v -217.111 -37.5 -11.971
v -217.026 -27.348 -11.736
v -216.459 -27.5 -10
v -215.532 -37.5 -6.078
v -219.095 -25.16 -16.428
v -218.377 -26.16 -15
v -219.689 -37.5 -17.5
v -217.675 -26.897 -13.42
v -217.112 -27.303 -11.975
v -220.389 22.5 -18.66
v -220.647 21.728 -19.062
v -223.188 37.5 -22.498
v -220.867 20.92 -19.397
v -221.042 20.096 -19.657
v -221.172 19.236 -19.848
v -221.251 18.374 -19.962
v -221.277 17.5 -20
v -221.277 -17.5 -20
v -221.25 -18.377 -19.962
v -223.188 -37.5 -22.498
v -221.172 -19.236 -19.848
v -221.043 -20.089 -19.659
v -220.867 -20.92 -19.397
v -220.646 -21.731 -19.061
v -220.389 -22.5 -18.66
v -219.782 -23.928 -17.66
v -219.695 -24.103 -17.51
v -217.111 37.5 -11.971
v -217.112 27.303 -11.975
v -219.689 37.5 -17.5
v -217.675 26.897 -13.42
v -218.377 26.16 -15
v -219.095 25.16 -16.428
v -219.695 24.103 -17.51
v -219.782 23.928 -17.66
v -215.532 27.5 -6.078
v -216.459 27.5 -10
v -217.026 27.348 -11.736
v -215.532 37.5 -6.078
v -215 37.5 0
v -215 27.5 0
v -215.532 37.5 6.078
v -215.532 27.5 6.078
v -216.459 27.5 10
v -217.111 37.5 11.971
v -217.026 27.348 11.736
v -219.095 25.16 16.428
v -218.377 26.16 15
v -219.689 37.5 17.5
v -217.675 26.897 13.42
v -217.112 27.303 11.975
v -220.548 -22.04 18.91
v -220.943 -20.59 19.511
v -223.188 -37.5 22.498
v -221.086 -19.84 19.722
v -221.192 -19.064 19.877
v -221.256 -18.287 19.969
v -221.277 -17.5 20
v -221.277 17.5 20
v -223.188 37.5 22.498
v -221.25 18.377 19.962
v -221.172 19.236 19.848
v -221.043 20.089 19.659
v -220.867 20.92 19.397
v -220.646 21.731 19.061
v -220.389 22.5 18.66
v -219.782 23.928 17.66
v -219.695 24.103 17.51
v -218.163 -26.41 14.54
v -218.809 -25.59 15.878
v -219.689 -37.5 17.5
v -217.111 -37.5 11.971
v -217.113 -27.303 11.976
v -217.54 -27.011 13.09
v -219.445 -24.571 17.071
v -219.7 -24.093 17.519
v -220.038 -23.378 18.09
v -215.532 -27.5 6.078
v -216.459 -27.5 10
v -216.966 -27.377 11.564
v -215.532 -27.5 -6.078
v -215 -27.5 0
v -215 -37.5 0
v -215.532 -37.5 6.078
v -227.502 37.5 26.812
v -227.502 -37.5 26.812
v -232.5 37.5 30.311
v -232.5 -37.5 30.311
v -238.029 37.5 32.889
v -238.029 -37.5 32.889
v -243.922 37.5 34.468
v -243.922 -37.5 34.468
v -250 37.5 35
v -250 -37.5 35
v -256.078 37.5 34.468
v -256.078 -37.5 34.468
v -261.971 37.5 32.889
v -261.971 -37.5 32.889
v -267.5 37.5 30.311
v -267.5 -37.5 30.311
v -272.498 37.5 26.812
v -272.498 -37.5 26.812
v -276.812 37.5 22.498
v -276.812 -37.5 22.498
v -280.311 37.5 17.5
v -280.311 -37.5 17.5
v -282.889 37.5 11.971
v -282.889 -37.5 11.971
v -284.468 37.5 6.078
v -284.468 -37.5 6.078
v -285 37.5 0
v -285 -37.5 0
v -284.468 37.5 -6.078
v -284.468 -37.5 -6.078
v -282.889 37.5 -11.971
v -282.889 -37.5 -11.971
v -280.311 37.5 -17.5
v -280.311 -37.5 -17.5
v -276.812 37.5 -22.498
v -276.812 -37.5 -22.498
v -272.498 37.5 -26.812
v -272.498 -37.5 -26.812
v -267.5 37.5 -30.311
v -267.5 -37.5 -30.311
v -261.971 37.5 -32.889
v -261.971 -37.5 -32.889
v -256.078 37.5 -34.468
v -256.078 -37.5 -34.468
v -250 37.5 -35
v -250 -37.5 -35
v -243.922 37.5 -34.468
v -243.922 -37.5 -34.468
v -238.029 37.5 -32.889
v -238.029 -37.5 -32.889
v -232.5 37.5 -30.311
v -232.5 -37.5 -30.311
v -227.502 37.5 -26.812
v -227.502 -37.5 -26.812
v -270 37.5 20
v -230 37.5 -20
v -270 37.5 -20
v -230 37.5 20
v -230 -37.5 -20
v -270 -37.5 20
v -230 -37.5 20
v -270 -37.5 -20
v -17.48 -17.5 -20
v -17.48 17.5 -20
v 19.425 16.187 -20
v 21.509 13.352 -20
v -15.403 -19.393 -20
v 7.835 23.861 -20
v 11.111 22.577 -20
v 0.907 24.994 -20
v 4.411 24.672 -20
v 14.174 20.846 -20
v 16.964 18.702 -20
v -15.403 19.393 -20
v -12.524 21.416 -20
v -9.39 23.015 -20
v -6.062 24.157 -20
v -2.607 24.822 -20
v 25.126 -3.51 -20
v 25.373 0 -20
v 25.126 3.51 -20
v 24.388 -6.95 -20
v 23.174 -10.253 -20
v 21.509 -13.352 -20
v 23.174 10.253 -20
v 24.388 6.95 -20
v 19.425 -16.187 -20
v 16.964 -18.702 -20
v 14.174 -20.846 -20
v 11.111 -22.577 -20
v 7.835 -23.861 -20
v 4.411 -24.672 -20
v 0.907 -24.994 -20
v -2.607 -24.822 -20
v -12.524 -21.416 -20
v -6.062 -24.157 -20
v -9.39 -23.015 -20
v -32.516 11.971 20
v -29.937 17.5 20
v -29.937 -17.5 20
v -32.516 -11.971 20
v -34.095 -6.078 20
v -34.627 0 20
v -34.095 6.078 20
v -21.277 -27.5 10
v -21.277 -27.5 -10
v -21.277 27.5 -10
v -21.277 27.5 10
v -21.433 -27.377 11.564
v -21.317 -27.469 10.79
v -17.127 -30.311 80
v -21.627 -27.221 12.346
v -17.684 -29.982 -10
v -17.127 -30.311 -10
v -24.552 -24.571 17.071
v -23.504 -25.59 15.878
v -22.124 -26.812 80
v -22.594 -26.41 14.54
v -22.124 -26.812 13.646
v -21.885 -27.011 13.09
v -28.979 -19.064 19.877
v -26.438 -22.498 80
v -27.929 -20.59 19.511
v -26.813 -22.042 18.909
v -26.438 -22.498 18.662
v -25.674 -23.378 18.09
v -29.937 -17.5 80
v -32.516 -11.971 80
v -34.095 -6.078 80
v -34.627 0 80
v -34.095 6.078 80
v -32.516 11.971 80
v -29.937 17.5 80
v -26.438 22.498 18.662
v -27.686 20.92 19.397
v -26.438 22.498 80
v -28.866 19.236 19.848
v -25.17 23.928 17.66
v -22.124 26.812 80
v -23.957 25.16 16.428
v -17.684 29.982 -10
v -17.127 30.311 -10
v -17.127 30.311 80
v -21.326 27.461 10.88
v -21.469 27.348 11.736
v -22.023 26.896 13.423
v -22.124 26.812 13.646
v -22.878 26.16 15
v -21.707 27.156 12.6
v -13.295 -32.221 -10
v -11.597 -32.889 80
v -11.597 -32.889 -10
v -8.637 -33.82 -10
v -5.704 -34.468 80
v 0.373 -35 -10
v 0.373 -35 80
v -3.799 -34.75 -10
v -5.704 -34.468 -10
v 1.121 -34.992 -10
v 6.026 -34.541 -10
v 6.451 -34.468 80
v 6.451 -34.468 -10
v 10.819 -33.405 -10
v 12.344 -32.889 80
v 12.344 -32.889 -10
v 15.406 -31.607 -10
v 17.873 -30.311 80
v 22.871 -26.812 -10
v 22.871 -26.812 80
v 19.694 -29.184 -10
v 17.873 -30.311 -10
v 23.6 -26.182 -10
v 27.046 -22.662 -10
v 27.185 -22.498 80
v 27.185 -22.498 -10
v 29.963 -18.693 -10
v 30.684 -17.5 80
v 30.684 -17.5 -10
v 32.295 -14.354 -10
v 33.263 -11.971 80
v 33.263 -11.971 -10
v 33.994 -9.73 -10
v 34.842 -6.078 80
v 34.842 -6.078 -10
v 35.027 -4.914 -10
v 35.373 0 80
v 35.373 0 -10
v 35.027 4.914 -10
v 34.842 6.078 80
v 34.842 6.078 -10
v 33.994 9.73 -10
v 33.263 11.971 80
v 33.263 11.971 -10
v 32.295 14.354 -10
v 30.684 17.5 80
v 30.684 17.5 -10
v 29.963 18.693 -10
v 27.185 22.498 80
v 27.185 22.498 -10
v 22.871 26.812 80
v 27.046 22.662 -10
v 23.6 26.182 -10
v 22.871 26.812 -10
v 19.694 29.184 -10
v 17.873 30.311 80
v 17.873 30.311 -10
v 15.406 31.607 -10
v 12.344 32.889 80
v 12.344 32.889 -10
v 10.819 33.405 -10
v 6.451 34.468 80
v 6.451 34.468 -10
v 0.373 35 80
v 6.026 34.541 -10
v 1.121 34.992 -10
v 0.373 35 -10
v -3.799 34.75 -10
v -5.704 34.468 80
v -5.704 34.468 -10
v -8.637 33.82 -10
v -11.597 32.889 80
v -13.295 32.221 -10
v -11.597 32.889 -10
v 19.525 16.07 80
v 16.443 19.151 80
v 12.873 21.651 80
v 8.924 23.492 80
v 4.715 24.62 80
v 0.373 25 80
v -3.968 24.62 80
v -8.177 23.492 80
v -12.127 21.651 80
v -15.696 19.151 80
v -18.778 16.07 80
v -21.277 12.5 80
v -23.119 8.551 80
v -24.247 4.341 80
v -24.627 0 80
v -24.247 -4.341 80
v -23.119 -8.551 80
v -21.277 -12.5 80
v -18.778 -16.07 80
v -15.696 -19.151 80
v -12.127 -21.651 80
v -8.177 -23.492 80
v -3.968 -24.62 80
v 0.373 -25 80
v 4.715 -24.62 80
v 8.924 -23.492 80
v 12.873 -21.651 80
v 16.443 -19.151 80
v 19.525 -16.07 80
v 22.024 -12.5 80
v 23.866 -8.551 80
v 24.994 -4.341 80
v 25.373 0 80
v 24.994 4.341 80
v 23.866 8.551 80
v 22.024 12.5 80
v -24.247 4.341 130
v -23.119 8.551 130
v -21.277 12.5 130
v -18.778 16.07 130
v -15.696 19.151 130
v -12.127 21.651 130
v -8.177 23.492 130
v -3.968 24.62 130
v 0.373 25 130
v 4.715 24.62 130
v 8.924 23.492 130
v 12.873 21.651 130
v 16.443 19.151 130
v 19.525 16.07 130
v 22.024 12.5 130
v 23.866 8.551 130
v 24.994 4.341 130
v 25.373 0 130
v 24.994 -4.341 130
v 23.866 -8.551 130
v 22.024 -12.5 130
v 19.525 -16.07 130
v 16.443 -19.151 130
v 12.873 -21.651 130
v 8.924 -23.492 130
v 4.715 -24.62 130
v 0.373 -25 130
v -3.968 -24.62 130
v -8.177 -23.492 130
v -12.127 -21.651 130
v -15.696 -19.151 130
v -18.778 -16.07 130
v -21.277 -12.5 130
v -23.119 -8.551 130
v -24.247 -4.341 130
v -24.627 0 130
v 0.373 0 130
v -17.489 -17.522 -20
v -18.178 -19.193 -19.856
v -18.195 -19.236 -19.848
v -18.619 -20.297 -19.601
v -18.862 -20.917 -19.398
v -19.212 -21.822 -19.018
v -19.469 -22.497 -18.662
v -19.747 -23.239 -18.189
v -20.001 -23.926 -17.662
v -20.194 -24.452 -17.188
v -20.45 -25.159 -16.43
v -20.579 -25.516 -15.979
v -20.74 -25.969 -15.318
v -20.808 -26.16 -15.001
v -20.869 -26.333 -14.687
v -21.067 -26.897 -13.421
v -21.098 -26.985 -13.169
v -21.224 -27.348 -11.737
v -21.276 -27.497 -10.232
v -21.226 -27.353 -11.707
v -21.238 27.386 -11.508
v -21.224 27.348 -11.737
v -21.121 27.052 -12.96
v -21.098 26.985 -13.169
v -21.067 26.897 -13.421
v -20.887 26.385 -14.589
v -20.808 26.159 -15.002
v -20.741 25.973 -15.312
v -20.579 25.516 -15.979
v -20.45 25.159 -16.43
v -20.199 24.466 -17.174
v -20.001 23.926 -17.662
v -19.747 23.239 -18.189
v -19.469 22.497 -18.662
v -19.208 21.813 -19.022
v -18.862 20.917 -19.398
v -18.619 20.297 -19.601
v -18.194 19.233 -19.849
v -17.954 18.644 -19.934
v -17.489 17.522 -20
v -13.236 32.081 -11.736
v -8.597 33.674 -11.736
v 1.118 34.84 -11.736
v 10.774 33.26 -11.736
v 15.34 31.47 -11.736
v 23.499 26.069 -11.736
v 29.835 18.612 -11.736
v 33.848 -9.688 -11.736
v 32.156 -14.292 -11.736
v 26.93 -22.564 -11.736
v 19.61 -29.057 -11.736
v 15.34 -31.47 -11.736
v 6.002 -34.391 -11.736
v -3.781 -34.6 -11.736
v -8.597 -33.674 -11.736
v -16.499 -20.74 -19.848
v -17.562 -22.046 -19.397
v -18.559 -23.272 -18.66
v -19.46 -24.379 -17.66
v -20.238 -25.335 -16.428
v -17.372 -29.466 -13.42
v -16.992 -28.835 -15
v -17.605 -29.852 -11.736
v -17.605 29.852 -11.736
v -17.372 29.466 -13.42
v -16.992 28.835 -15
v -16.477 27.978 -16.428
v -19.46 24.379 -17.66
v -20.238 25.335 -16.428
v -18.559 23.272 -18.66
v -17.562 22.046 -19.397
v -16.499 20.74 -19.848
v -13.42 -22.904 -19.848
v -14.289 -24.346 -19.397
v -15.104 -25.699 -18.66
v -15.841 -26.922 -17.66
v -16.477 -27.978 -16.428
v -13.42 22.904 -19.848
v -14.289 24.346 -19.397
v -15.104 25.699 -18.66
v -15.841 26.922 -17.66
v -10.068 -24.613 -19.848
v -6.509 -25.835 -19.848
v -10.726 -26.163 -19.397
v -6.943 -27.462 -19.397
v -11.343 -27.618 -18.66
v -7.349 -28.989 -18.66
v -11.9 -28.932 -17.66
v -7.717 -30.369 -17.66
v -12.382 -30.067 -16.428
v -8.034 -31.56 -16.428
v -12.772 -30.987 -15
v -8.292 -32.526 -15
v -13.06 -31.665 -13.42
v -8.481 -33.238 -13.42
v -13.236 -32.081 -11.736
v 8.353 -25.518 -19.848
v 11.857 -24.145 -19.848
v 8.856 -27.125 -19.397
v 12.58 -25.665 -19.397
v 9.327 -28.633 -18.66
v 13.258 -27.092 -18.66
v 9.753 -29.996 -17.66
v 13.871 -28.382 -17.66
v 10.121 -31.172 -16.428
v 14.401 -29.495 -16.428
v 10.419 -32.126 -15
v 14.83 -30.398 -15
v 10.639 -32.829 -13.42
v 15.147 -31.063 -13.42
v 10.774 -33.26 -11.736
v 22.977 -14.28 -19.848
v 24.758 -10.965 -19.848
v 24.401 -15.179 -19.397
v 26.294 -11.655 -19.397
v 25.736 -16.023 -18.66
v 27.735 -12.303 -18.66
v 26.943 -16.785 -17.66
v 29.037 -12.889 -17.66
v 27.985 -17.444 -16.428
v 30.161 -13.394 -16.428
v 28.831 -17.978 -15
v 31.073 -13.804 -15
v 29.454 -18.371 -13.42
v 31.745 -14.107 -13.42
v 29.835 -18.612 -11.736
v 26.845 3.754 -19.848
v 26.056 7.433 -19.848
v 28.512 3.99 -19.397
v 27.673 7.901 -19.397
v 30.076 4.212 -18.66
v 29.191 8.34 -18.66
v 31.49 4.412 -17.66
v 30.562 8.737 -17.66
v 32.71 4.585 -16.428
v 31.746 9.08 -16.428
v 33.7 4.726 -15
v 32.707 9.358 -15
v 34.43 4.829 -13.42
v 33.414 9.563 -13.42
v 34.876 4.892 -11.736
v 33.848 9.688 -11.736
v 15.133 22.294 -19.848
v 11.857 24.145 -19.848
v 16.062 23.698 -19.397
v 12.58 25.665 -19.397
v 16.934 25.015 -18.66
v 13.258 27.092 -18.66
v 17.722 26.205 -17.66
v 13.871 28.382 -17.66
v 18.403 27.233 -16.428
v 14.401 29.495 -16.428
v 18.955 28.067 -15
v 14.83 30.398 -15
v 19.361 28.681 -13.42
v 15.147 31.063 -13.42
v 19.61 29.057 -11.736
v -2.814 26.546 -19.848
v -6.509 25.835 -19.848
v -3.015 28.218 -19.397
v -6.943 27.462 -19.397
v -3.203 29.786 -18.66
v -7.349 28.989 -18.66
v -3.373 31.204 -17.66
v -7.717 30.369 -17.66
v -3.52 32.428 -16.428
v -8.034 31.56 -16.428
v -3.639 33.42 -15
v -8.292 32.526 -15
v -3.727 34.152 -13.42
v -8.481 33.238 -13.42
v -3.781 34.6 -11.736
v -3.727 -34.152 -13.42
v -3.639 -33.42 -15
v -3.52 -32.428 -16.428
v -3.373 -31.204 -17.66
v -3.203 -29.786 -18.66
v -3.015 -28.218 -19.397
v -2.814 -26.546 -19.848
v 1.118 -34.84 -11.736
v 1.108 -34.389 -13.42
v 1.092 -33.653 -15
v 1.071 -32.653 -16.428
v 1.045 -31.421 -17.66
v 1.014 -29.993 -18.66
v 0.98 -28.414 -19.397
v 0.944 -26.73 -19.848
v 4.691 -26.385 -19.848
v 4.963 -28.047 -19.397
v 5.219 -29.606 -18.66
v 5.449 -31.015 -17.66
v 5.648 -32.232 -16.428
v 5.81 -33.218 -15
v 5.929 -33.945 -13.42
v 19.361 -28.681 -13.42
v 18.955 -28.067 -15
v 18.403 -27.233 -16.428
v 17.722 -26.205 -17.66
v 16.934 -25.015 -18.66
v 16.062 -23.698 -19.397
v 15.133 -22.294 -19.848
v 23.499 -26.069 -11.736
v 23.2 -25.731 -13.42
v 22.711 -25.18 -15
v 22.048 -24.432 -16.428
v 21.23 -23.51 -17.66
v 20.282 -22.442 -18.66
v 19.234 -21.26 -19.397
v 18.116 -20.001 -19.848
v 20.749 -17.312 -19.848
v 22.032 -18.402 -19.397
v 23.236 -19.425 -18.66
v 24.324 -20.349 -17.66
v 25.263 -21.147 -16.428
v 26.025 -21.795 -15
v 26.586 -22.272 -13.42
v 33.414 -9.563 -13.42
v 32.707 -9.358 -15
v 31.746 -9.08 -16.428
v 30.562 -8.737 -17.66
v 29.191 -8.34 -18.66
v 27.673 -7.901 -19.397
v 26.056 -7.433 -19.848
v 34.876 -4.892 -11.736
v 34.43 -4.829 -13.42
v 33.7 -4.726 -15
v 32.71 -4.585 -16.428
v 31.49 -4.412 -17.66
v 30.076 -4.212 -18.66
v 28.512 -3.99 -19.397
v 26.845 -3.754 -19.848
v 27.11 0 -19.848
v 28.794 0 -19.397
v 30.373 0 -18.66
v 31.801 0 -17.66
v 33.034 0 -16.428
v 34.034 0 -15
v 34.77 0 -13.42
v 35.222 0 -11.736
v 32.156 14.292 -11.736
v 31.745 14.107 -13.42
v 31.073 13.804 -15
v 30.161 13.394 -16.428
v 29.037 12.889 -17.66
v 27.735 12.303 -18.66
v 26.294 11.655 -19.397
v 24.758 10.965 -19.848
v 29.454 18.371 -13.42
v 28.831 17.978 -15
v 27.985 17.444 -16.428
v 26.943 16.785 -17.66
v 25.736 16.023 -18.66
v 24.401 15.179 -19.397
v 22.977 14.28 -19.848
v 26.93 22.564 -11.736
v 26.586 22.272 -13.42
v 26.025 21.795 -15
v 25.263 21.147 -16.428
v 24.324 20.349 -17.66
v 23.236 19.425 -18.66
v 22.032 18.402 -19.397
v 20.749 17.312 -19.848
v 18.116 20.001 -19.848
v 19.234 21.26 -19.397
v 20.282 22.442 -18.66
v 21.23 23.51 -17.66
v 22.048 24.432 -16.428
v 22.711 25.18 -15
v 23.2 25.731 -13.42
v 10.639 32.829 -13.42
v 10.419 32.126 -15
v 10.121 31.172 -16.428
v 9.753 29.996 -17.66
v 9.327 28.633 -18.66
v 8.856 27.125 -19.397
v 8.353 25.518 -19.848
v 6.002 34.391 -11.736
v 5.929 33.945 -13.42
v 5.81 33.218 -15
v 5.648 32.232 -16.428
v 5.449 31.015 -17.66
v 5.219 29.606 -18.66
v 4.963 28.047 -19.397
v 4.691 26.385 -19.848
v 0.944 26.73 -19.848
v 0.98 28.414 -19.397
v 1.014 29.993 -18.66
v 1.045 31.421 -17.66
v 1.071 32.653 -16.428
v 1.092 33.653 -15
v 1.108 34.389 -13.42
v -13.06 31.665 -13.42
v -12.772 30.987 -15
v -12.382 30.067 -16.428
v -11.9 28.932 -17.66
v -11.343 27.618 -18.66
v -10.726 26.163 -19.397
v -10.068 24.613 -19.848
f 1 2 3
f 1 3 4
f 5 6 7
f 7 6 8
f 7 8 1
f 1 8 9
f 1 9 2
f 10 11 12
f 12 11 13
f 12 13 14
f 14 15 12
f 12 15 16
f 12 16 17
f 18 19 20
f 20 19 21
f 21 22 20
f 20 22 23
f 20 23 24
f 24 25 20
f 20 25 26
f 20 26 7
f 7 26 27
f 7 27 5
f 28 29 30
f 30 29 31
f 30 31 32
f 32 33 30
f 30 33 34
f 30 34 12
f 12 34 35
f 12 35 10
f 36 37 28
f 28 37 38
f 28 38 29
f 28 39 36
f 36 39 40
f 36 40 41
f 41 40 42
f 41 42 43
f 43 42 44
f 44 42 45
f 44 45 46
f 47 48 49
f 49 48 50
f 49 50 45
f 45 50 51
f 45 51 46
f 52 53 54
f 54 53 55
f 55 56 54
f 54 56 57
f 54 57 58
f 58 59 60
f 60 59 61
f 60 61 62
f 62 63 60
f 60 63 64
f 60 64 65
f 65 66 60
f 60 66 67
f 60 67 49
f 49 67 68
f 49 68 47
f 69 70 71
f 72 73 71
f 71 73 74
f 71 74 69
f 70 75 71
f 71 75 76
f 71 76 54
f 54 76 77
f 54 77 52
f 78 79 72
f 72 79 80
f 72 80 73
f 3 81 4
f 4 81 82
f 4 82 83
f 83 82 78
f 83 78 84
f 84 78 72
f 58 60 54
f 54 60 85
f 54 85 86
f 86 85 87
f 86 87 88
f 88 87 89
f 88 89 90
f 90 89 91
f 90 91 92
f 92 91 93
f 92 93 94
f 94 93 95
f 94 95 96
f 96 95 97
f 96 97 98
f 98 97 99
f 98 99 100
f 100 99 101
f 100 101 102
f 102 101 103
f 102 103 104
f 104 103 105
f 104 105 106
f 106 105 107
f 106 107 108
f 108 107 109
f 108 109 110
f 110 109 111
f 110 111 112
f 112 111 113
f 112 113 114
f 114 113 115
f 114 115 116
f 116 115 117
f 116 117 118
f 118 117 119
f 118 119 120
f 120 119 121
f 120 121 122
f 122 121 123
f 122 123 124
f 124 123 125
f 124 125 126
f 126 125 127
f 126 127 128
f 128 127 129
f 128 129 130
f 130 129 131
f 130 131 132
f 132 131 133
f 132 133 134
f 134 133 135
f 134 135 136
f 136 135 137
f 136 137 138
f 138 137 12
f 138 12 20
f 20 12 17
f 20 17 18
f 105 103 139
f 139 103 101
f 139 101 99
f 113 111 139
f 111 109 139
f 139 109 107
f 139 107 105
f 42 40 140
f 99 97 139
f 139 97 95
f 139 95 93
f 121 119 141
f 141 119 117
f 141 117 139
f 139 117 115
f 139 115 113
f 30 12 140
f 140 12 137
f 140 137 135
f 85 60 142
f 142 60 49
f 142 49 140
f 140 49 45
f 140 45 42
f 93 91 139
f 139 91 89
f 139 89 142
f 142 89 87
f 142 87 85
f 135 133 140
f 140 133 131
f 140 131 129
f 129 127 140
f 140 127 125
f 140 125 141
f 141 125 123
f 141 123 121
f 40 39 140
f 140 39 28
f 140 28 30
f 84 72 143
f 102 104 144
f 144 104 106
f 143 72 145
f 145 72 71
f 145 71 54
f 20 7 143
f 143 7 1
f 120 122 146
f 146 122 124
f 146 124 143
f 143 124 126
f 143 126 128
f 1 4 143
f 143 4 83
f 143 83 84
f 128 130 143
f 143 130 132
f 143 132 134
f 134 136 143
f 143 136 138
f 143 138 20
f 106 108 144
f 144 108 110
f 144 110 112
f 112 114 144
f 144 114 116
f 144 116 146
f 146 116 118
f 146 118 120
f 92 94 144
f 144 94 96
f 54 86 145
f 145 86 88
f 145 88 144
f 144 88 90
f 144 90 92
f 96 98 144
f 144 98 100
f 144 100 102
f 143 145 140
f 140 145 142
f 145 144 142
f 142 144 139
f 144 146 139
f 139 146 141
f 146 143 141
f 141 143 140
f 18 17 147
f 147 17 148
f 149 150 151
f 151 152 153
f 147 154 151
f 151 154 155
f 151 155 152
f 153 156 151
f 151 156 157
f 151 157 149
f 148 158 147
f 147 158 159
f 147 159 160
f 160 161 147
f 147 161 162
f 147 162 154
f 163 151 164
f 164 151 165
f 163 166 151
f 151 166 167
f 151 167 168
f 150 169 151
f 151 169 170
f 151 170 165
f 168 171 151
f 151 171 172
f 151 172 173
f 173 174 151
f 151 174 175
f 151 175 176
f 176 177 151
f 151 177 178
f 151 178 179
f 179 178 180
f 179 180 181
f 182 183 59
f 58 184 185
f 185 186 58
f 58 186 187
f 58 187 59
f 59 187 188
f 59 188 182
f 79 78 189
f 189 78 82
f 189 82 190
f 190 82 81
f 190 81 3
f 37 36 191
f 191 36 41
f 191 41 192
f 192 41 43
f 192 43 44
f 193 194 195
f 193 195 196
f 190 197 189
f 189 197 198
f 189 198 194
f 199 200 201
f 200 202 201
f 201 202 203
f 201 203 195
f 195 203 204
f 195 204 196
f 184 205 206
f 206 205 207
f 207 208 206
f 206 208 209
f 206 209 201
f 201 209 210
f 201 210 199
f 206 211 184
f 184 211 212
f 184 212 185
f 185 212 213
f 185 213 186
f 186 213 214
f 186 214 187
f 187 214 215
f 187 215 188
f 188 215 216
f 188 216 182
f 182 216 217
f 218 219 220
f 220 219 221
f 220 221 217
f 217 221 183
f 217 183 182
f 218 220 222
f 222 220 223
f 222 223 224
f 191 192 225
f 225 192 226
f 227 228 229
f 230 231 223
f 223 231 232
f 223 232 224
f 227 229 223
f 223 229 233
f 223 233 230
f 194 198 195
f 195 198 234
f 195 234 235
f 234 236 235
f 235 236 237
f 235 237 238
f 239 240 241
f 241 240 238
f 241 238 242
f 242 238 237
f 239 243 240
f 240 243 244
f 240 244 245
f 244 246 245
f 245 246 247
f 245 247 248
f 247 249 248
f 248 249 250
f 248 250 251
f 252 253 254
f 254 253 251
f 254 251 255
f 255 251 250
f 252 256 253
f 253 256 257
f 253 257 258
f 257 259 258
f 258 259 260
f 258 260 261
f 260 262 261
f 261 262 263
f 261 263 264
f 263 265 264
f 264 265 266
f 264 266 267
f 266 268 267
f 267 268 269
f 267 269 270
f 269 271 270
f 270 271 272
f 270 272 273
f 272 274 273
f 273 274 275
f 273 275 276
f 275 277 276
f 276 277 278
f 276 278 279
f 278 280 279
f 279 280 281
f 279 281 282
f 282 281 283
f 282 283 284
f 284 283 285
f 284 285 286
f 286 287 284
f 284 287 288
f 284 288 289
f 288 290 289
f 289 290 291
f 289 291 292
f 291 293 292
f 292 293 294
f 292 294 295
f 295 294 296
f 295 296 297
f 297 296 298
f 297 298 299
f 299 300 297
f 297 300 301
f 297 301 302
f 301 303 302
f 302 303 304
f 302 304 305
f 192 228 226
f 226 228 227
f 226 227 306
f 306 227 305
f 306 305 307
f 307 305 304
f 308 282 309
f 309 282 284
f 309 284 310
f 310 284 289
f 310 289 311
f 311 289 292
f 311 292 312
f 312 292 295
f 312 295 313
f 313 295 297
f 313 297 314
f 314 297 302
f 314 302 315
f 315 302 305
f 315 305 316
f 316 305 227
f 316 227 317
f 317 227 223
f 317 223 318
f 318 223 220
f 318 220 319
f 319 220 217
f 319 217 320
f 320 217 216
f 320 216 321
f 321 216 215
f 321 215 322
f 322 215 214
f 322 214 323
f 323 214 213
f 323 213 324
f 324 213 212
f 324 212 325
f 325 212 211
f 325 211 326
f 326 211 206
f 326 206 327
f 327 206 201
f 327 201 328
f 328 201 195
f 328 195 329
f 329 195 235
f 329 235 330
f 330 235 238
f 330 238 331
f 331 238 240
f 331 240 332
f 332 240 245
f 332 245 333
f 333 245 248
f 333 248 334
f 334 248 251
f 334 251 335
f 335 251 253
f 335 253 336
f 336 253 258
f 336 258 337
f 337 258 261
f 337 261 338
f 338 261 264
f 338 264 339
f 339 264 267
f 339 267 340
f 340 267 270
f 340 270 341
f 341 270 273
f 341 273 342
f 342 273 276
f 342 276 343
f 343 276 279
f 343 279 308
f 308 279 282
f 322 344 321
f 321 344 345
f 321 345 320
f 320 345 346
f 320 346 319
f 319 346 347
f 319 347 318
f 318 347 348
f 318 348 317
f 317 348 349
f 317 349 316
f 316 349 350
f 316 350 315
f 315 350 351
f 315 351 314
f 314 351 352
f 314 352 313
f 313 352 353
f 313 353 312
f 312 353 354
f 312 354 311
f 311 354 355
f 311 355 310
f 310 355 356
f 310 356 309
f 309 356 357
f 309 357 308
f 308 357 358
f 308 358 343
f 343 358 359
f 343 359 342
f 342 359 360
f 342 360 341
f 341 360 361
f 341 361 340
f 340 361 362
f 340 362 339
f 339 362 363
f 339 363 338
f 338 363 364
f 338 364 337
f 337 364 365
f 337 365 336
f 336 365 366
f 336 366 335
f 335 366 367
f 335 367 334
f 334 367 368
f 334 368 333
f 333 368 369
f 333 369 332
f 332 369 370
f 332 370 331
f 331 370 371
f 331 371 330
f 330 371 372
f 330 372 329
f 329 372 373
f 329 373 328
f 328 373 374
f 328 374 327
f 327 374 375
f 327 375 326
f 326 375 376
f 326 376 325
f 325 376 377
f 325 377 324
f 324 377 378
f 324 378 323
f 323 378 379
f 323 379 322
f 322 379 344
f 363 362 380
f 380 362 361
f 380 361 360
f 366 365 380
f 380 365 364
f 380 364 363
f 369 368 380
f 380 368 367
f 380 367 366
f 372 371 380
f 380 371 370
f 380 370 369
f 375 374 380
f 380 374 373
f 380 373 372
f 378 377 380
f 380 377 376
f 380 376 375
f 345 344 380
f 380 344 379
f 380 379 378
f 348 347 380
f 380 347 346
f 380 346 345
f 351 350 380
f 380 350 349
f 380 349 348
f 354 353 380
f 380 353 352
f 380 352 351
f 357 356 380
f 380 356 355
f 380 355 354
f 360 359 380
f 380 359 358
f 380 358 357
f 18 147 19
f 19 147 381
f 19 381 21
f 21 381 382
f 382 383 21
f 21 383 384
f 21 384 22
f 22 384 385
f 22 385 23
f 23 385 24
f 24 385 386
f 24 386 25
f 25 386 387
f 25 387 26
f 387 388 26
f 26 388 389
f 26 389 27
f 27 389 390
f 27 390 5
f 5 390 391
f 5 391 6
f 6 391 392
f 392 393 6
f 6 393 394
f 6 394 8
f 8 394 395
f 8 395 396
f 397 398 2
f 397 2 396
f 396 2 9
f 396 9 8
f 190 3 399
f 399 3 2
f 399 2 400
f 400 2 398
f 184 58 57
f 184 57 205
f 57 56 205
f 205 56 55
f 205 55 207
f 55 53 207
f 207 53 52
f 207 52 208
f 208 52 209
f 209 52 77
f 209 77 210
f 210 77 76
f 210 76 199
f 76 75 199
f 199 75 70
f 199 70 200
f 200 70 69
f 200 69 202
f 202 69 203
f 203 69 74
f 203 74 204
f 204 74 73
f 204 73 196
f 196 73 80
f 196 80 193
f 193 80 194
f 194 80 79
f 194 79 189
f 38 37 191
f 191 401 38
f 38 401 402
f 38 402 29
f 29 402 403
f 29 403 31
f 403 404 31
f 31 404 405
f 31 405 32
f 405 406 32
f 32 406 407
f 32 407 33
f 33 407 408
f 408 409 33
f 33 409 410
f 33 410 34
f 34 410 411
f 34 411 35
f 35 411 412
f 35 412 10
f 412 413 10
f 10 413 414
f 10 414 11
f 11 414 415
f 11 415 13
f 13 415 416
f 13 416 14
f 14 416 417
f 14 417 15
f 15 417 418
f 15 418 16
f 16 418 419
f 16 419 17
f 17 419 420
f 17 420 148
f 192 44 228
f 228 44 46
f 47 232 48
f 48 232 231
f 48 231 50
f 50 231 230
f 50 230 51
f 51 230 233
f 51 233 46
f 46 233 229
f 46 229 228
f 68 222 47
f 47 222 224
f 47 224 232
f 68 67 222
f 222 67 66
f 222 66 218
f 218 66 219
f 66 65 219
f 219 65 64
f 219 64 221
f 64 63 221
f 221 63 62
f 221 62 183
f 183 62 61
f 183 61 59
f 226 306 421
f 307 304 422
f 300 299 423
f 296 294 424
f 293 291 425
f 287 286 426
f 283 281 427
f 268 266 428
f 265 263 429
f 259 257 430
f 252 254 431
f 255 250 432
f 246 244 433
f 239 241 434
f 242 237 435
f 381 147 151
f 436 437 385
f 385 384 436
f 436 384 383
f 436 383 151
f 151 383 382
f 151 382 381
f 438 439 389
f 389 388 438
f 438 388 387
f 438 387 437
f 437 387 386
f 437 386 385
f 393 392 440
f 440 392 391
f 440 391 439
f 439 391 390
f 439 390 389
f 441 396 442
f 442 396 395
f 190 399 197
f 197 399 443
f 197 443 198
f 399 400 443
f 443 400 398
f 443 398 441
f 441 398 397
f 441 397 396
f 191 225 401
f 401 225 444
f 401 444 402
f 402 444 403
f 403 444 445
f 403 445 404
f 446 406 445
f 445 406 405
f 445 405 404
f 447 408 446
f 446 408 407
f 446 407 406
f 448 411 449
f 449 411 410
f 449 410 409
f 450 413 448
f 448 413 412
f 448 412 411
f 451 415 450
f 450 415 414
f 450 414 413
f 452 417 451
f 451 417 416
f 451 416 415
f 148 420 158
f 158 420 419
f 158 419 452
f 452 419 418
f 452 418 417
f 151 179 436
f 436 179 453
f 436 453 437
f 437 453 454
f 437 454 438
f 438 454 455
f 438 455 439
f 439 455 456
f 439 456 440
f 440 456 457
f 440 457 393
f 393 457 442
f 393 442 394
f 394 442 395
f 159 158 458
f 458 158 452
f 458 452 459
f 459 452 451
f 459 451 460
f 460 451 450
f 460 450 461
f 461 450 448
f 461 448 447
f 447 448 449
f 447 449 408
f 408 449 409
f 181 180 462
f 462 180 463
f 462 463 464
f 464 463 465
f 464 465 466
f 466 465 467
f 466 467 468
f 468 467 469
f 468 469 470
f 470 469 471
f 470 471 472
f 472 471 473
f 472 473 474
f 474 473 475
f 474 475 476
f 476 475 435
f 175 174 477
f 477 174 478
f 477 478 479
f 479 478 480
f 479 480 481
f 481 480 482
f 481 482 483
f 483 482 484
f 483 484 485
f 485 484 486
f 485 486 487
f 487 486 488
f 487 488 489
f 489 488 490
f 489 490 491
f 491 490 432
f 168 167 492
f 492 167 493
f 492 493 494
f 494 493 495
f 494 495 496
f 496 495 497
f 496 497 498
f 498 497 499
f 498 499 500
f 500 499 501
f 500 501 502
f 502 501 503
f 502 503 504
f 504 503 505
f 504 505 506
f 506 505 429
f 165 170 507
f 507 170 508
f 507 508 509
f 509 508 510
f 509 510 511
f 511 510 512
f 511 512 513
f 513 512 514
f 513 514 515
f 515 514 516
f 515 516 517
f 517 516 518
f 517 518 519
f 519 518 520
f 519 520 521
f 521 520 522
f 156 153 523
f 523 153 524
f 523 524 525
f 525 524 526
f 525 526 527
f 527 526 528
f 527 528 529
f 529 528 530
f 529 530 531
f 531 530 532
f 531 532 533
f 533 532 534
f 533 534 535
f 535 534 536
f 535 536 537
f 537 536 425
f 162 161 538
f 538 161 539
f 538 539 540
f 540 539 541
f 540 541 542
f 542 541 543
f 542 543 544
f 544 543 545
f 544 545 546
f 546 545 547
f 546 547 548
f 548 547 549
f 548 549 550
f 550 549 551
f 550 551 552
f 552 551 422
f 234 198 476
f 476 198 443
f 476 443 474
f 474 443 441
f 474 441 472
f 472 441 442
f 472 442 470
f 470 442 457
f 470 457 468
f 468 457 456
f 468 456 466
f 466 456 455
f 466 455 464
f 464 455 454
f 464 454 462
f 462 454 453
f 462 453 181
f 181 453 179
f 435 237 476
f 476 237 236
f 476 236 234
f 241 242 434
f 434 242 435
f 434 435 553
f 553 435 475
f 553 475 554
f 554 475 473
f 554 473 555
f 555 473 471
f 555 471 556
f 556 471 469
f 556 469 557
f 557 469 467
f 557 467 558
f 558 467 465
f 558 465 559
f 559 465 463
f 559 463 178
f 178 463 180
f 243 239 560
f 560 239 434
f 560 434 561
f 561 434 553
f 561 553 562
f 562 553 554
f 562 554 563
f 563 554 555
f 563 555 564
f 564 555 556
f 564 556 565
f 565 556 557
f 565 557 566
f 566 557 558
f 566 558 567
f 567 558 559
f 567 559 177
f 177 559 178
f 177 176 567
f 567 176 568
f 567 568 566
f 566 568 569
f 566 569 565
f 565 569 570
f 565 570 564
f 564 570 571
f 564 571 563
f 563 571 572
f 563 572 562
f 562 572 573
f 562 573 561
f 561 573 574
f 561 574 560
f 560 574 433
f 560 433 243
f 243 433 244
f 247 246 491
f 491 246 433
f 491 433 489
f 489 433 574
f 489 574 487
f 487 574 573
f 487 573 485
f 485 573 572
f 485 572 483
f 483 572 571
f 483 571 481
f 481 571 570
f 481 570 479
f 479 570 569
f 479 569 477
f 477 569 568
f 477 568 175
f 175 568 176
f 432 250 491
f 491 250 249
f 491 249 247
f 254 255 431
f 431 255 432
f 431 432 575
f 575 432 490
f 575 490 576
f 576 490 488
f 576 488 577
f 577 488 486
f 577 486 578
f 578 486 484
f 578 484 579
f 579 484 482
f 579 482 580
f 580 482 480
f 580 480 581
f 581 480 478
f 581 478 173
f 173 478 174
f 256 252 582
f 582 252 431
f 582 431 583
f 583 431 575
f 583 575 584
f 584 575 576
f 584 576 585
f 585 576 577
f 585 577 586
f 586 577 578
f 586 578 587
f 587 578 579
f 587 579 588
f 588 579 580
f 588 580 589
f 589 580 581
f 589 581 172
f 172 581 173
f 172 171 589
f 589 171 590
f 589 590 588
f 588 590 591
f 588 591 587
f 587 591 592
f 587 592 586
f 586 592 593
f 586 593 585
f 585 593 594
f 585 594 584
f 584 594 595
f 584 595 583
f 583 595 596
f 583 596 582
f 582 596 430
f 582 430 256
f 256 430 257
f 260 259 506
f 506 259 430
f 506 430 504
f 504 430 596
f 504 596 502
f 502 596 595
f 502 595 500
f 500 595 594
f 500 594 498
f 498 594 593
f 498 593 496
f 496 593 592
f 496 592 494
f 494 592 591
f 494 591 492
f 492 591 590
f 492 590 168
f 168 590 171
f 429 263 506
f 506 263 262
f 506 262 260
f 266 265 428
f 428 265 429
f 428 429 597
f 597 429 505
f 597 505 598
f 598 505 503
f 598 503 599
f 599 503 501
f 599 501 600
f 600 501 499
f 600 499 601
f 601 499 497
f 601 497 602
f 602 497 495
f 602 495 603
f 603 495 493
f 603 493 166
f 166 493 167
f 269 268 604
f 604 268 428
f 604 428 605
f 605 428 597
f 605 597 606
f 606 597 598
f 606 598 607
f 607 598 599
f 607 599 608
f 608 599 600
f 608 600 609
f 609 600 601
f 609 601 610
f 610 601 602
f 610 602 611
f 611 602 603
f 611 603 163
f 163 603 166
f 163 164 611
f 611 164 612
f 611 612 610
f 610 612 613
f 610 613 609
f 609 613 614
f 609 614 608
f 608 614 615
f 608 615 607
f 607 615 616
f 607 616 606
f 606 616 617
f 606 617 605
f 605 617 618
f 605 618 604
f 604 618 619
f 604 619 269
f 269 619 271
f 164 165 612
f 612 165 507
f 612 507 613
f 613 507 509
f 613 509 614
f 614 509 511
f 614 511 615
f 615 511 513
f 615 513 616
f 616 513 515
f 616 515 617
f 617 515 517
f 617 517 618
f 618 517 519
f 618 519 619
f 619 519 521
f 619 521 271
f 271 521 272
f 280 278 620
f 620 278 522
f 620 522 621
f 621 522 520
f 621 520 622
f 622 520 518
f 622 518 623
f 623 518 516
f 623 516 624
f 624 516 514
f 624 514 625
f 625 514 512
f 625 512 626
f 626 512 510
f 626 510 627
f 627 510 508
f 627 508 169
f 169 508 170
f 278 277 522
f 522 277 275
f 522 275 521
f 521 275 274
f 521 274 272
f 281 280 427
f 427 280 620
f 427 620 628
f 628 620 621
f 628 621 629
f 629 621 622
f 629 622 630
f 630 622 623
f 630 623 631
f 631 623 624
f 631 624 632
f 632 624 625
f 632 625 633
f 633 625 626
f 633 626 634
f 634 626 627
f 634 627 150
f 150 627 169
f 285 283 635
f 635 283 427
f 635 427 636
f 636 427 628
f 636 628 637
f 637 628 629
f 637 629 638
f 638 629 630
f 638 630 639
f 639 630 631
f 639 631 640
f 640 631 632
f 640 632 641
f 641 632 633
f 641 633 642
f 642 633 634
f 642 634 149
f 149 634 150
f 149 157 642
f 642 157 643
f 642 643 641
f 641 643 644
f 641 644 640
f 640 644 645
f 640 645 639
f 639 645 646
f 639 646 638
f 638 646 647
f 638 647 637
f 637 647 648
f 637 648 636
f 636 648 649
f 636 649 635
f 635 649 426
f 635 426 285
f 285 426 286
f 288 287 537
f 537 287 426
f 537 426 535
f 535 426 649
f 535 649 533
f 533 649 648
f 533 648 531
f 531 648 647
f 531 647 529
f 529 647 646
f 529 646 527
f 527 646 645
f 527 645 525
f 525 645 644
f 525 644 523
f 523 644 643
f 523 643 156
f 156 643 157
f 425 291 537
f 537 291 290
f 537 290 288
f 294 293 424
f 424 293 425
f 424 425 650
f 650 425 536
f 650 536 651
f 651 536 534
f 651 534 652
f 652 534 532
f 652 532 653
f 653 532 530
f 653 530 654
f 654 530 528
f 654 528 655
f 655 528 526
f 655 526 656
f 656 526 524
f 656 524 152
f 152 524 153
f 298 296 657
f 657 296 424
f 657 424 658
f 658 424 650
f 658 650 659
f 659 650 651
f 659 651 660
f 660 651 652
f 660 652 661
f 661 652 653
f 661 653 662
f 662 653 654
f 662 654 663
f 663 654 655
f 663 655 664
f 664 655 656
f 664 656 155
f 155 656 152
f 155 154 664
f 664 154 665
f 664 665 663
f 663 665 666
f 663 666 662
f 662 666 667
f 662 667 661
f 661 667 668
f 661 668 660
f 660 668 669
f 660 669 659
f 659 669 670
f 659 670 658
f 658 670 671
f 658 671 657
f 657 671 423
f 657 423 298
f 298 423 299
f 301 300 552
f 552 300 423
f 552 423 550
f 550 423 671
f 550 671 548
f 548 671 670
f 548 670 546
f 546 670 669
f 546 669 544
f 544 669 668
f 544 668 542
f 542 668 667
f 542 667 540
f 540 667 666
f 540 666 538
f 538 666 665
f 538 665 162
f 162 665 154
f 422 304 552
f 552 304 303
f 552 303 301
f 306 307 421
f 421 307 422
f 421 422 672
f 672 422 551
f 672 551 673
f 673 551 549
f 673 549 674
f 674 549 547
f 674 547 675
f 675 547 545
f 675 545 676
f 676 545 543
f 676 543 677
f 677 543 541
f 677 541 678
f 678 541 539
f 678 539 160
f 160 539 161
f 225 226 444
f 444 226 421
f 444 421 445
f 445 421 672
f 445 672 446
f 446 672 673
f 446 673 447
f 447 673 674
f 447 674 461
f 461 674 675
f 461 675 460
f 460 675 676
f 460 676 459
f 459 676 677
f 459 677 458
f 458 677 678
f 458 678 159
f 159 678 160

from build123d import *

# Parameters (mm, degrees)
SKETCH1_R           = 35
BOSS_EXTRUDE1_DEPTH = 75
SKETCH2_W           = 40
SKETCH2_H           = 40
CUT_EXTRUDE1_DEPTH  = 90.86100377805714
BOSS_EXTRUDE2_START = -10
BOSS_EXTRUDE2_DEPTH = 55
SKETCH5_R           = 35.00000000000001
BOSS_EXTRUDE3_DEPTH = 100
SKETCH8_R           = 25.000000000000007
BOSS_EXTRUDE5_DEPTH = 50
FILLET1_R           = 10
FILLET2_R           = 10


with BuildPart() as part:
    # Sketch1 → Boss-Extrude1 (new body)
    with BuildSketch(Plane(origin=(0, 0, 0), x_dir=(1, 0, 0), z_dir=(0, 1, 0))):
        with Locations(Location((0, 0, 0), (0, 0, 270))):
            Circle(SKETCH1_R)
    extrude(amount=BOSS_EXTRUDE1_DEPTH)

    # Sketch2 → Cut-Extrude1 (cut, through all)
    with BuildSketch(Plane(origin=(0, 75, 0), x_dir=(1, 0, 0), z_dir=(0, 1, 0))):
        Rectangle(SKETCH2_W, SKETCH2_H)
    extrude(amount=-CUT_EXTRUDE1_DEPTH, mode=Mode.SUBTRACT)

    # Sketch3 → Boss-Extrude2 (add)
    with BuildSketch(Plane(origin=(0, 75, 0), x_dir=(1, 0, 0), z_dir=(0, 1, 0)).offset(BOSS_EXTRUDE2_START)):
        Polygon((228.72281323269016, -19.99999999999999), (28.72281323269015, -20.000000000000014), (28.72281323269015, 19.999999999999982), (228.72281323269016, 20.00000000000001), align=None)
    extrude(amount=-BOSS_EXTRUDE2_DEPTH)

    # Sketch5 → Boss-Extrude3 (add)
    with BuildSketch(Plane(origin=(-2.78e-15, 0, -19.99999999999998), x_dir=(-1, 0, 1.4e-16), z_dir=(-1.4e-16, 0, -1))):
        with Locations((-250.37344832730113, 37.49999999999998)):
            Circle(SKETCH5_R)
    extrude(amount=-BOSS_EXTRUDE3_DEPTH)

    # Sketch8 → Boss-Extrude5 (add)
    with BuildSketch(Plane.XY.offset(80.00000000000003)):
        with Locations((250.37344832730113, 37.49999999999998)):
            Circle(SKETCH8_R)
    extrude(amount=BOSS_EXTRUDE5_DEPTH)

    # Fillet1
    fillet1_edges = [part.edges().sort_by_distance(p)[0] for p in [
        (128.72281323269016, 10, -19.999999999999996),
        (128.72281323269016, 10, 20.000000000000004),
        (128.72281323269016, 65, 20.000000000000004),
        (128.72281323269016, 65, -19.999999999999996),
    ]]
    fillet(fillet1_edges, radius=FILLET1_R)

    # Fillet2
    fillet2_edges = [part.edges().sort_by_distance(p)[0] for p in [
        (285.37344832730116, 37.49999999999991, -20.00000000000001),
    ]]
    fillet(fillet2_edges, radius=FILLET2_R)


with BuildPart() as part_1:
    # Body-Move/Copy1: moved
    add(part.part.moved(Location((-250, -37.5, 0))))


solid = part_1.part
